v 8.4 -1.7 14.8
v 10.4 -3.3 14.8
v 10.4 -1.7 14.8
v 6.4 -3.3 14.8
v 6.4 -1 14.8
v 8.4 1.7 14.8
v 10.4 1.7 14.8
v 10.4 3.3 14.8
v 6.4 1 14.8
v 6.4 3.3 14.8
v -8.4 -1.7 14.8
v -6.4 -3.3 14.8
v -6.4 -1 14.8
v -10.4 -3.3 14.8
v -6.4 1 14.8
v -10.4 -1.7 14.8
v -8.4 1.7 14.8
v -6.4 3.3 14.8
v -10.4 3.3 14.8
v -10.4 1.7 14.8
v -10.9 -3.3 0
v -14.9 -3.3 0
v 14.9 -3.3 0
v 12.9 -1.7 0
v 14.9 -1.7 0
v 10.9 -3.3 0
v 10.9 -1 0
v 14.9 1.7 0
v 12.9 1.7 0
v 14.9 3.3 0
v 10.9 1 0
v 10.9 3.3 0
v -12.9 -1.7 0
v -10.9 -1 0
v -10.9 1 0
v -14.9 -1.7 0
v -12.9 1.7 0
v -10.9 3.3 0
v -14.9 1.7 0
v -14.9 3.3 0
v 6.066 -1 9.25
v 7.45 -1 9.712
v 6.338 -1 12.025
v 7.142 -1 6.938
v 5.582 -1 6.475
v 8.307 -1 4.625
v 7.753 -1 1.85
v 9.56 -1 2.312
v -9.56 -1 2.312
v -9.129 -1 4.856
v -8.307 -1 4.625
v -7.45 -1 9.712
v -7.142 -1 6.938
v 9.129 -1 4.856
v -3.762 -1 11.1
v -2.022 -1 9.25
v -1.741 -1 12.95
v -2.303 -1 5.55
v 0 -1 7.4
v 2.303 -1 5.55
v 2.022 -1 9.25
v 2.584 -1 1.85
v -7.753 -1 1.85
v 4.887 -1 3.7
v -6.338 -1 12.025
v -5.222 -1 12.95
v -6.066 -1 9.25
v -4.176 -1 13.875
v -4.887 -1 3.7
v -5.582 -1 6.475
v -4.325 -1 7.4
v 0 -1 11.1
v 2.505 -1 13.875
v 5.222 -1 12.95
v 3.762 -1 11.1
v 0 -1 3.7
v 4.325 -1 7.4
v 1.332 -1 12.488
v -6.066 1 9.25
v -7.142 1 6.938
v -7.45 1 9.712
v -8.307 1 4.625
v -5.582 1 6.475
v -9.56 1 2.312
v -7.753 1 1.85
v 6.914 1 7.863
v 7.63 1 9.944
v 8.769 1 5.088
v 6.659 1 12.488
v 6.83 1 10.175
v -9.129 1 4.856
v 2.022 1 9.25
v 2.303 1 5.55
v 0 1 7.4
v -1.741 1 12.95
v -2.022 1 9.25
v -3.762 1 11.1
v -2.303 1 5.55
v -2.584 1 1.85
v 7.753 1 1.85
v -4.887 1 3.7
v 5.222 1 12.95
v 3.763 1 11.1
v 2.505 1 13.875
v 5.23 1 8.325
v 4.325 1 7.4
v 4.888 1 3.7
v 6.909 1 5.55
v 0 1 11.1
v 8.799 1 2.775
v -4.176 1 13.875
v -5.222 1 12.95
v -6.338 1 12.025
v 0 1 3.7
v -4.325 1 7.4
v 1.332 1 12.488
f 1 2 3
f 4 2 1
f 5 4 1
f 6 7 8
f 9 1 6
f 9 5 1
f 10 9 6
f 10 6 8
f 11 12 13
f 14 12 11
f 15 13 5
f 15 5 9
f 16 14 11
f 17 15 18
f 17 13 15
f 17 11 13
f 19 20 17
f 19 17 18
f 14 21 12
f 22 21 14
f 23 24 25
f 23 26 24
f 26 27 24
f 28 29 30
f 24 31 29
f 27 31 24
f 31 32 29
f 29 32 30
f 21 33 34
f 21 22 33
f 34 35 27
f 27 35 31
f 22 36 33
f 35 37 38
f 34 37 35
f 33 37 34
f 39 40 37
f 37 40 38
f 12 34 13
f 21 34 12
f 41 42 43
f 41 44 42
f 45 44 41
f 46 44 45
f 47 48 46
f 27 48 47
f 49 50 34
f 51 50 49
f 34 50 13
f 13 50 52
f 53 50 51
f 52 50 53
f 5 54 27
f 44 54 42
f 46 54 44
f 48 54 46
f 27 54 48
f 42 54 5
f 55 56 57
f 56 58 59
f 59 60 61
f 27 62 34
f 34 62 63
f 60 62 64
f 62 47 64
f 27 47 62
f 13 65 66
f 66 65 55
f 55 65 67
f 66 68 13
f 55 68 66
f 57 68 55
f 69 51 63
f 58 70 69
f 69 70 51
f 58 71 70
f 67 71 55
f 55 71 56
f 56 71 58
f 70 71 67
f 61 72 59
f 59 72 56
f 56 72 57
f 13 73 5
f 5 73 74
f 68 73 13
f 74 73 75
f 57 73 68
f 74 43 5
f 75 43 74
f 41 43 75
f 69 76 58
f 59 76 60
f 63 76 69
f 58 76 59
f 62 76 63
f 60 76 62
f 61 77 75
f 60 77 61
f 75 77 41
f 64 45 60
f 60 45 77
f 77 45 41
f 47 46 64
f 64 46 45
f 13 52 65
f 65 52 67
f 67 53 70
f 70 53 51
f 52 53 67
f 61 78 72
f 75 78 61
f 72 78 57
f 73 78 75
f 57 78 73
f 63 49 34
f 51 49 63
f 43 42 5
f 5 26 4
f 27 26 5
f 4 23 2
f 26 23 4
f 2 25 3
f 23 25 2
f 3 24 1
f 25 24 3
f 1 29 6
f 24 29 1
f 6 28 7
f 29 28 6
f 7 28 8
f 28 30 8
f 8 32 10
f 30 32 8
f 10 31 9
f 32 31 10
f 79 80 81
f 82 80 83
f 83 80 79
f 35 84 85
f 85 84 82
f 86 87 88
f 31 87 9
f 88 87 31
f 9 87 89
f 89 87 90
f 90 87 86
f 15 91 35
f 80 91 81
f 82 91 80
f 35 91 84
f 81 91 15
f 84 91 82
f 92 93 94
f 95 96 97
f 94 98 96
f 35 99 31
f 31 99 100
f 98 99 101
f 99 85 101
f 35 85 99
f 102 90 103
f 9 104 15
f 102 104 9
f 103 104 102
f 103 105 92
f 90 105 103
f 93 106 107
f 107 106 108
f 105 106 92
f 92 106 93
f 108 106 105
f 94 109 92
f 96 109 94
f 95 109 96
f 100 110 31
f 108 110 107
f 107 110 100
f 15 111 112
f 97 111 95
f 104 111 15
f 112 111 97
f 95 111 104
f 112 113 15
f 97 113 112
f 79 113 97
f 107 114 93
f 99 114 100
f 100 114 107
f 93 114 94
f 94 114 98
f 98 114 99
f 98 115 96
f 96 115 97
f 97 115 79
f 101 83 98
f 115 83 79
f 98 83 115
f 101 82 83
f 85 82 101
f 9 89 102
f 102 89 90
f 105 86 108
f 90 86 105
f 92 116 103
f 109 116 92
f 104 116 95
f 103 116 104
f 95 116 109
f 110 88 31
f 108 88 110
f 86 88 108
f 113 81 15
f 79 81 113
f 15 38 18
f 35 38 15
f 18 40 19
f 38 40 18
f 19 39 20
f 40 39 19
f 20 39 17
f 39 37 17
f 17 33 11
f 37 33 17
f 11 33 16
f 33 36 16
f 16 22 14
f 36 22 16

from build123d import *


with BuildPart() as part:
    # CopySketch002 → AdditiveLoft section 0
    with BuildSketch(Plane.XY.offset(14.8)):
        Polygon((-10.399994, -3.3), (-6.399994, -3.3), (-6.399994, -1), (6.399994, -1), (6.399994, -3.3), (10.399994, -3.3), (10.400006, -1.7), (8.400006, -1.7), (8.400006, 1.7), (10.400006, 1.7), (10.400006, 3.3), (6.400006, 3.3), (6.400006, 1), (-6.399994, 1), (-6.399994, 3.3), (-10.399994, 3.3), (-10.399994, 1.7), (-8.399994, 1.7), (-8.399994, -1.7), (-10.399994, -1.7), align=None)
    # Sketch001 (on Plane) → AdditiveLoft section 1
    with BuildSketch(Plane.XY):
        Polygon((-14.899994, -3.3), (-10.899994, -3.3), (-10.899994, -1), (10.899994, -1), (10.899994, -3.3), (14.899994, -3.3), (14.900006, -1.7), (12.900006, -1.7), (12.900006, 1.7), (14.900006, 1.7), (14.900006, 3.3), (10.900006, 3.3), (10.900006, 1), (-10.899994, 1), (-10.899994, 3.3), (-14.899994, 3.3), (-14.899994, 1.7), (-12.899994, 1.7), (-12.899994, -1.7), (-14.899994, -1.7), align=None)
    loft()


solid = part.part
